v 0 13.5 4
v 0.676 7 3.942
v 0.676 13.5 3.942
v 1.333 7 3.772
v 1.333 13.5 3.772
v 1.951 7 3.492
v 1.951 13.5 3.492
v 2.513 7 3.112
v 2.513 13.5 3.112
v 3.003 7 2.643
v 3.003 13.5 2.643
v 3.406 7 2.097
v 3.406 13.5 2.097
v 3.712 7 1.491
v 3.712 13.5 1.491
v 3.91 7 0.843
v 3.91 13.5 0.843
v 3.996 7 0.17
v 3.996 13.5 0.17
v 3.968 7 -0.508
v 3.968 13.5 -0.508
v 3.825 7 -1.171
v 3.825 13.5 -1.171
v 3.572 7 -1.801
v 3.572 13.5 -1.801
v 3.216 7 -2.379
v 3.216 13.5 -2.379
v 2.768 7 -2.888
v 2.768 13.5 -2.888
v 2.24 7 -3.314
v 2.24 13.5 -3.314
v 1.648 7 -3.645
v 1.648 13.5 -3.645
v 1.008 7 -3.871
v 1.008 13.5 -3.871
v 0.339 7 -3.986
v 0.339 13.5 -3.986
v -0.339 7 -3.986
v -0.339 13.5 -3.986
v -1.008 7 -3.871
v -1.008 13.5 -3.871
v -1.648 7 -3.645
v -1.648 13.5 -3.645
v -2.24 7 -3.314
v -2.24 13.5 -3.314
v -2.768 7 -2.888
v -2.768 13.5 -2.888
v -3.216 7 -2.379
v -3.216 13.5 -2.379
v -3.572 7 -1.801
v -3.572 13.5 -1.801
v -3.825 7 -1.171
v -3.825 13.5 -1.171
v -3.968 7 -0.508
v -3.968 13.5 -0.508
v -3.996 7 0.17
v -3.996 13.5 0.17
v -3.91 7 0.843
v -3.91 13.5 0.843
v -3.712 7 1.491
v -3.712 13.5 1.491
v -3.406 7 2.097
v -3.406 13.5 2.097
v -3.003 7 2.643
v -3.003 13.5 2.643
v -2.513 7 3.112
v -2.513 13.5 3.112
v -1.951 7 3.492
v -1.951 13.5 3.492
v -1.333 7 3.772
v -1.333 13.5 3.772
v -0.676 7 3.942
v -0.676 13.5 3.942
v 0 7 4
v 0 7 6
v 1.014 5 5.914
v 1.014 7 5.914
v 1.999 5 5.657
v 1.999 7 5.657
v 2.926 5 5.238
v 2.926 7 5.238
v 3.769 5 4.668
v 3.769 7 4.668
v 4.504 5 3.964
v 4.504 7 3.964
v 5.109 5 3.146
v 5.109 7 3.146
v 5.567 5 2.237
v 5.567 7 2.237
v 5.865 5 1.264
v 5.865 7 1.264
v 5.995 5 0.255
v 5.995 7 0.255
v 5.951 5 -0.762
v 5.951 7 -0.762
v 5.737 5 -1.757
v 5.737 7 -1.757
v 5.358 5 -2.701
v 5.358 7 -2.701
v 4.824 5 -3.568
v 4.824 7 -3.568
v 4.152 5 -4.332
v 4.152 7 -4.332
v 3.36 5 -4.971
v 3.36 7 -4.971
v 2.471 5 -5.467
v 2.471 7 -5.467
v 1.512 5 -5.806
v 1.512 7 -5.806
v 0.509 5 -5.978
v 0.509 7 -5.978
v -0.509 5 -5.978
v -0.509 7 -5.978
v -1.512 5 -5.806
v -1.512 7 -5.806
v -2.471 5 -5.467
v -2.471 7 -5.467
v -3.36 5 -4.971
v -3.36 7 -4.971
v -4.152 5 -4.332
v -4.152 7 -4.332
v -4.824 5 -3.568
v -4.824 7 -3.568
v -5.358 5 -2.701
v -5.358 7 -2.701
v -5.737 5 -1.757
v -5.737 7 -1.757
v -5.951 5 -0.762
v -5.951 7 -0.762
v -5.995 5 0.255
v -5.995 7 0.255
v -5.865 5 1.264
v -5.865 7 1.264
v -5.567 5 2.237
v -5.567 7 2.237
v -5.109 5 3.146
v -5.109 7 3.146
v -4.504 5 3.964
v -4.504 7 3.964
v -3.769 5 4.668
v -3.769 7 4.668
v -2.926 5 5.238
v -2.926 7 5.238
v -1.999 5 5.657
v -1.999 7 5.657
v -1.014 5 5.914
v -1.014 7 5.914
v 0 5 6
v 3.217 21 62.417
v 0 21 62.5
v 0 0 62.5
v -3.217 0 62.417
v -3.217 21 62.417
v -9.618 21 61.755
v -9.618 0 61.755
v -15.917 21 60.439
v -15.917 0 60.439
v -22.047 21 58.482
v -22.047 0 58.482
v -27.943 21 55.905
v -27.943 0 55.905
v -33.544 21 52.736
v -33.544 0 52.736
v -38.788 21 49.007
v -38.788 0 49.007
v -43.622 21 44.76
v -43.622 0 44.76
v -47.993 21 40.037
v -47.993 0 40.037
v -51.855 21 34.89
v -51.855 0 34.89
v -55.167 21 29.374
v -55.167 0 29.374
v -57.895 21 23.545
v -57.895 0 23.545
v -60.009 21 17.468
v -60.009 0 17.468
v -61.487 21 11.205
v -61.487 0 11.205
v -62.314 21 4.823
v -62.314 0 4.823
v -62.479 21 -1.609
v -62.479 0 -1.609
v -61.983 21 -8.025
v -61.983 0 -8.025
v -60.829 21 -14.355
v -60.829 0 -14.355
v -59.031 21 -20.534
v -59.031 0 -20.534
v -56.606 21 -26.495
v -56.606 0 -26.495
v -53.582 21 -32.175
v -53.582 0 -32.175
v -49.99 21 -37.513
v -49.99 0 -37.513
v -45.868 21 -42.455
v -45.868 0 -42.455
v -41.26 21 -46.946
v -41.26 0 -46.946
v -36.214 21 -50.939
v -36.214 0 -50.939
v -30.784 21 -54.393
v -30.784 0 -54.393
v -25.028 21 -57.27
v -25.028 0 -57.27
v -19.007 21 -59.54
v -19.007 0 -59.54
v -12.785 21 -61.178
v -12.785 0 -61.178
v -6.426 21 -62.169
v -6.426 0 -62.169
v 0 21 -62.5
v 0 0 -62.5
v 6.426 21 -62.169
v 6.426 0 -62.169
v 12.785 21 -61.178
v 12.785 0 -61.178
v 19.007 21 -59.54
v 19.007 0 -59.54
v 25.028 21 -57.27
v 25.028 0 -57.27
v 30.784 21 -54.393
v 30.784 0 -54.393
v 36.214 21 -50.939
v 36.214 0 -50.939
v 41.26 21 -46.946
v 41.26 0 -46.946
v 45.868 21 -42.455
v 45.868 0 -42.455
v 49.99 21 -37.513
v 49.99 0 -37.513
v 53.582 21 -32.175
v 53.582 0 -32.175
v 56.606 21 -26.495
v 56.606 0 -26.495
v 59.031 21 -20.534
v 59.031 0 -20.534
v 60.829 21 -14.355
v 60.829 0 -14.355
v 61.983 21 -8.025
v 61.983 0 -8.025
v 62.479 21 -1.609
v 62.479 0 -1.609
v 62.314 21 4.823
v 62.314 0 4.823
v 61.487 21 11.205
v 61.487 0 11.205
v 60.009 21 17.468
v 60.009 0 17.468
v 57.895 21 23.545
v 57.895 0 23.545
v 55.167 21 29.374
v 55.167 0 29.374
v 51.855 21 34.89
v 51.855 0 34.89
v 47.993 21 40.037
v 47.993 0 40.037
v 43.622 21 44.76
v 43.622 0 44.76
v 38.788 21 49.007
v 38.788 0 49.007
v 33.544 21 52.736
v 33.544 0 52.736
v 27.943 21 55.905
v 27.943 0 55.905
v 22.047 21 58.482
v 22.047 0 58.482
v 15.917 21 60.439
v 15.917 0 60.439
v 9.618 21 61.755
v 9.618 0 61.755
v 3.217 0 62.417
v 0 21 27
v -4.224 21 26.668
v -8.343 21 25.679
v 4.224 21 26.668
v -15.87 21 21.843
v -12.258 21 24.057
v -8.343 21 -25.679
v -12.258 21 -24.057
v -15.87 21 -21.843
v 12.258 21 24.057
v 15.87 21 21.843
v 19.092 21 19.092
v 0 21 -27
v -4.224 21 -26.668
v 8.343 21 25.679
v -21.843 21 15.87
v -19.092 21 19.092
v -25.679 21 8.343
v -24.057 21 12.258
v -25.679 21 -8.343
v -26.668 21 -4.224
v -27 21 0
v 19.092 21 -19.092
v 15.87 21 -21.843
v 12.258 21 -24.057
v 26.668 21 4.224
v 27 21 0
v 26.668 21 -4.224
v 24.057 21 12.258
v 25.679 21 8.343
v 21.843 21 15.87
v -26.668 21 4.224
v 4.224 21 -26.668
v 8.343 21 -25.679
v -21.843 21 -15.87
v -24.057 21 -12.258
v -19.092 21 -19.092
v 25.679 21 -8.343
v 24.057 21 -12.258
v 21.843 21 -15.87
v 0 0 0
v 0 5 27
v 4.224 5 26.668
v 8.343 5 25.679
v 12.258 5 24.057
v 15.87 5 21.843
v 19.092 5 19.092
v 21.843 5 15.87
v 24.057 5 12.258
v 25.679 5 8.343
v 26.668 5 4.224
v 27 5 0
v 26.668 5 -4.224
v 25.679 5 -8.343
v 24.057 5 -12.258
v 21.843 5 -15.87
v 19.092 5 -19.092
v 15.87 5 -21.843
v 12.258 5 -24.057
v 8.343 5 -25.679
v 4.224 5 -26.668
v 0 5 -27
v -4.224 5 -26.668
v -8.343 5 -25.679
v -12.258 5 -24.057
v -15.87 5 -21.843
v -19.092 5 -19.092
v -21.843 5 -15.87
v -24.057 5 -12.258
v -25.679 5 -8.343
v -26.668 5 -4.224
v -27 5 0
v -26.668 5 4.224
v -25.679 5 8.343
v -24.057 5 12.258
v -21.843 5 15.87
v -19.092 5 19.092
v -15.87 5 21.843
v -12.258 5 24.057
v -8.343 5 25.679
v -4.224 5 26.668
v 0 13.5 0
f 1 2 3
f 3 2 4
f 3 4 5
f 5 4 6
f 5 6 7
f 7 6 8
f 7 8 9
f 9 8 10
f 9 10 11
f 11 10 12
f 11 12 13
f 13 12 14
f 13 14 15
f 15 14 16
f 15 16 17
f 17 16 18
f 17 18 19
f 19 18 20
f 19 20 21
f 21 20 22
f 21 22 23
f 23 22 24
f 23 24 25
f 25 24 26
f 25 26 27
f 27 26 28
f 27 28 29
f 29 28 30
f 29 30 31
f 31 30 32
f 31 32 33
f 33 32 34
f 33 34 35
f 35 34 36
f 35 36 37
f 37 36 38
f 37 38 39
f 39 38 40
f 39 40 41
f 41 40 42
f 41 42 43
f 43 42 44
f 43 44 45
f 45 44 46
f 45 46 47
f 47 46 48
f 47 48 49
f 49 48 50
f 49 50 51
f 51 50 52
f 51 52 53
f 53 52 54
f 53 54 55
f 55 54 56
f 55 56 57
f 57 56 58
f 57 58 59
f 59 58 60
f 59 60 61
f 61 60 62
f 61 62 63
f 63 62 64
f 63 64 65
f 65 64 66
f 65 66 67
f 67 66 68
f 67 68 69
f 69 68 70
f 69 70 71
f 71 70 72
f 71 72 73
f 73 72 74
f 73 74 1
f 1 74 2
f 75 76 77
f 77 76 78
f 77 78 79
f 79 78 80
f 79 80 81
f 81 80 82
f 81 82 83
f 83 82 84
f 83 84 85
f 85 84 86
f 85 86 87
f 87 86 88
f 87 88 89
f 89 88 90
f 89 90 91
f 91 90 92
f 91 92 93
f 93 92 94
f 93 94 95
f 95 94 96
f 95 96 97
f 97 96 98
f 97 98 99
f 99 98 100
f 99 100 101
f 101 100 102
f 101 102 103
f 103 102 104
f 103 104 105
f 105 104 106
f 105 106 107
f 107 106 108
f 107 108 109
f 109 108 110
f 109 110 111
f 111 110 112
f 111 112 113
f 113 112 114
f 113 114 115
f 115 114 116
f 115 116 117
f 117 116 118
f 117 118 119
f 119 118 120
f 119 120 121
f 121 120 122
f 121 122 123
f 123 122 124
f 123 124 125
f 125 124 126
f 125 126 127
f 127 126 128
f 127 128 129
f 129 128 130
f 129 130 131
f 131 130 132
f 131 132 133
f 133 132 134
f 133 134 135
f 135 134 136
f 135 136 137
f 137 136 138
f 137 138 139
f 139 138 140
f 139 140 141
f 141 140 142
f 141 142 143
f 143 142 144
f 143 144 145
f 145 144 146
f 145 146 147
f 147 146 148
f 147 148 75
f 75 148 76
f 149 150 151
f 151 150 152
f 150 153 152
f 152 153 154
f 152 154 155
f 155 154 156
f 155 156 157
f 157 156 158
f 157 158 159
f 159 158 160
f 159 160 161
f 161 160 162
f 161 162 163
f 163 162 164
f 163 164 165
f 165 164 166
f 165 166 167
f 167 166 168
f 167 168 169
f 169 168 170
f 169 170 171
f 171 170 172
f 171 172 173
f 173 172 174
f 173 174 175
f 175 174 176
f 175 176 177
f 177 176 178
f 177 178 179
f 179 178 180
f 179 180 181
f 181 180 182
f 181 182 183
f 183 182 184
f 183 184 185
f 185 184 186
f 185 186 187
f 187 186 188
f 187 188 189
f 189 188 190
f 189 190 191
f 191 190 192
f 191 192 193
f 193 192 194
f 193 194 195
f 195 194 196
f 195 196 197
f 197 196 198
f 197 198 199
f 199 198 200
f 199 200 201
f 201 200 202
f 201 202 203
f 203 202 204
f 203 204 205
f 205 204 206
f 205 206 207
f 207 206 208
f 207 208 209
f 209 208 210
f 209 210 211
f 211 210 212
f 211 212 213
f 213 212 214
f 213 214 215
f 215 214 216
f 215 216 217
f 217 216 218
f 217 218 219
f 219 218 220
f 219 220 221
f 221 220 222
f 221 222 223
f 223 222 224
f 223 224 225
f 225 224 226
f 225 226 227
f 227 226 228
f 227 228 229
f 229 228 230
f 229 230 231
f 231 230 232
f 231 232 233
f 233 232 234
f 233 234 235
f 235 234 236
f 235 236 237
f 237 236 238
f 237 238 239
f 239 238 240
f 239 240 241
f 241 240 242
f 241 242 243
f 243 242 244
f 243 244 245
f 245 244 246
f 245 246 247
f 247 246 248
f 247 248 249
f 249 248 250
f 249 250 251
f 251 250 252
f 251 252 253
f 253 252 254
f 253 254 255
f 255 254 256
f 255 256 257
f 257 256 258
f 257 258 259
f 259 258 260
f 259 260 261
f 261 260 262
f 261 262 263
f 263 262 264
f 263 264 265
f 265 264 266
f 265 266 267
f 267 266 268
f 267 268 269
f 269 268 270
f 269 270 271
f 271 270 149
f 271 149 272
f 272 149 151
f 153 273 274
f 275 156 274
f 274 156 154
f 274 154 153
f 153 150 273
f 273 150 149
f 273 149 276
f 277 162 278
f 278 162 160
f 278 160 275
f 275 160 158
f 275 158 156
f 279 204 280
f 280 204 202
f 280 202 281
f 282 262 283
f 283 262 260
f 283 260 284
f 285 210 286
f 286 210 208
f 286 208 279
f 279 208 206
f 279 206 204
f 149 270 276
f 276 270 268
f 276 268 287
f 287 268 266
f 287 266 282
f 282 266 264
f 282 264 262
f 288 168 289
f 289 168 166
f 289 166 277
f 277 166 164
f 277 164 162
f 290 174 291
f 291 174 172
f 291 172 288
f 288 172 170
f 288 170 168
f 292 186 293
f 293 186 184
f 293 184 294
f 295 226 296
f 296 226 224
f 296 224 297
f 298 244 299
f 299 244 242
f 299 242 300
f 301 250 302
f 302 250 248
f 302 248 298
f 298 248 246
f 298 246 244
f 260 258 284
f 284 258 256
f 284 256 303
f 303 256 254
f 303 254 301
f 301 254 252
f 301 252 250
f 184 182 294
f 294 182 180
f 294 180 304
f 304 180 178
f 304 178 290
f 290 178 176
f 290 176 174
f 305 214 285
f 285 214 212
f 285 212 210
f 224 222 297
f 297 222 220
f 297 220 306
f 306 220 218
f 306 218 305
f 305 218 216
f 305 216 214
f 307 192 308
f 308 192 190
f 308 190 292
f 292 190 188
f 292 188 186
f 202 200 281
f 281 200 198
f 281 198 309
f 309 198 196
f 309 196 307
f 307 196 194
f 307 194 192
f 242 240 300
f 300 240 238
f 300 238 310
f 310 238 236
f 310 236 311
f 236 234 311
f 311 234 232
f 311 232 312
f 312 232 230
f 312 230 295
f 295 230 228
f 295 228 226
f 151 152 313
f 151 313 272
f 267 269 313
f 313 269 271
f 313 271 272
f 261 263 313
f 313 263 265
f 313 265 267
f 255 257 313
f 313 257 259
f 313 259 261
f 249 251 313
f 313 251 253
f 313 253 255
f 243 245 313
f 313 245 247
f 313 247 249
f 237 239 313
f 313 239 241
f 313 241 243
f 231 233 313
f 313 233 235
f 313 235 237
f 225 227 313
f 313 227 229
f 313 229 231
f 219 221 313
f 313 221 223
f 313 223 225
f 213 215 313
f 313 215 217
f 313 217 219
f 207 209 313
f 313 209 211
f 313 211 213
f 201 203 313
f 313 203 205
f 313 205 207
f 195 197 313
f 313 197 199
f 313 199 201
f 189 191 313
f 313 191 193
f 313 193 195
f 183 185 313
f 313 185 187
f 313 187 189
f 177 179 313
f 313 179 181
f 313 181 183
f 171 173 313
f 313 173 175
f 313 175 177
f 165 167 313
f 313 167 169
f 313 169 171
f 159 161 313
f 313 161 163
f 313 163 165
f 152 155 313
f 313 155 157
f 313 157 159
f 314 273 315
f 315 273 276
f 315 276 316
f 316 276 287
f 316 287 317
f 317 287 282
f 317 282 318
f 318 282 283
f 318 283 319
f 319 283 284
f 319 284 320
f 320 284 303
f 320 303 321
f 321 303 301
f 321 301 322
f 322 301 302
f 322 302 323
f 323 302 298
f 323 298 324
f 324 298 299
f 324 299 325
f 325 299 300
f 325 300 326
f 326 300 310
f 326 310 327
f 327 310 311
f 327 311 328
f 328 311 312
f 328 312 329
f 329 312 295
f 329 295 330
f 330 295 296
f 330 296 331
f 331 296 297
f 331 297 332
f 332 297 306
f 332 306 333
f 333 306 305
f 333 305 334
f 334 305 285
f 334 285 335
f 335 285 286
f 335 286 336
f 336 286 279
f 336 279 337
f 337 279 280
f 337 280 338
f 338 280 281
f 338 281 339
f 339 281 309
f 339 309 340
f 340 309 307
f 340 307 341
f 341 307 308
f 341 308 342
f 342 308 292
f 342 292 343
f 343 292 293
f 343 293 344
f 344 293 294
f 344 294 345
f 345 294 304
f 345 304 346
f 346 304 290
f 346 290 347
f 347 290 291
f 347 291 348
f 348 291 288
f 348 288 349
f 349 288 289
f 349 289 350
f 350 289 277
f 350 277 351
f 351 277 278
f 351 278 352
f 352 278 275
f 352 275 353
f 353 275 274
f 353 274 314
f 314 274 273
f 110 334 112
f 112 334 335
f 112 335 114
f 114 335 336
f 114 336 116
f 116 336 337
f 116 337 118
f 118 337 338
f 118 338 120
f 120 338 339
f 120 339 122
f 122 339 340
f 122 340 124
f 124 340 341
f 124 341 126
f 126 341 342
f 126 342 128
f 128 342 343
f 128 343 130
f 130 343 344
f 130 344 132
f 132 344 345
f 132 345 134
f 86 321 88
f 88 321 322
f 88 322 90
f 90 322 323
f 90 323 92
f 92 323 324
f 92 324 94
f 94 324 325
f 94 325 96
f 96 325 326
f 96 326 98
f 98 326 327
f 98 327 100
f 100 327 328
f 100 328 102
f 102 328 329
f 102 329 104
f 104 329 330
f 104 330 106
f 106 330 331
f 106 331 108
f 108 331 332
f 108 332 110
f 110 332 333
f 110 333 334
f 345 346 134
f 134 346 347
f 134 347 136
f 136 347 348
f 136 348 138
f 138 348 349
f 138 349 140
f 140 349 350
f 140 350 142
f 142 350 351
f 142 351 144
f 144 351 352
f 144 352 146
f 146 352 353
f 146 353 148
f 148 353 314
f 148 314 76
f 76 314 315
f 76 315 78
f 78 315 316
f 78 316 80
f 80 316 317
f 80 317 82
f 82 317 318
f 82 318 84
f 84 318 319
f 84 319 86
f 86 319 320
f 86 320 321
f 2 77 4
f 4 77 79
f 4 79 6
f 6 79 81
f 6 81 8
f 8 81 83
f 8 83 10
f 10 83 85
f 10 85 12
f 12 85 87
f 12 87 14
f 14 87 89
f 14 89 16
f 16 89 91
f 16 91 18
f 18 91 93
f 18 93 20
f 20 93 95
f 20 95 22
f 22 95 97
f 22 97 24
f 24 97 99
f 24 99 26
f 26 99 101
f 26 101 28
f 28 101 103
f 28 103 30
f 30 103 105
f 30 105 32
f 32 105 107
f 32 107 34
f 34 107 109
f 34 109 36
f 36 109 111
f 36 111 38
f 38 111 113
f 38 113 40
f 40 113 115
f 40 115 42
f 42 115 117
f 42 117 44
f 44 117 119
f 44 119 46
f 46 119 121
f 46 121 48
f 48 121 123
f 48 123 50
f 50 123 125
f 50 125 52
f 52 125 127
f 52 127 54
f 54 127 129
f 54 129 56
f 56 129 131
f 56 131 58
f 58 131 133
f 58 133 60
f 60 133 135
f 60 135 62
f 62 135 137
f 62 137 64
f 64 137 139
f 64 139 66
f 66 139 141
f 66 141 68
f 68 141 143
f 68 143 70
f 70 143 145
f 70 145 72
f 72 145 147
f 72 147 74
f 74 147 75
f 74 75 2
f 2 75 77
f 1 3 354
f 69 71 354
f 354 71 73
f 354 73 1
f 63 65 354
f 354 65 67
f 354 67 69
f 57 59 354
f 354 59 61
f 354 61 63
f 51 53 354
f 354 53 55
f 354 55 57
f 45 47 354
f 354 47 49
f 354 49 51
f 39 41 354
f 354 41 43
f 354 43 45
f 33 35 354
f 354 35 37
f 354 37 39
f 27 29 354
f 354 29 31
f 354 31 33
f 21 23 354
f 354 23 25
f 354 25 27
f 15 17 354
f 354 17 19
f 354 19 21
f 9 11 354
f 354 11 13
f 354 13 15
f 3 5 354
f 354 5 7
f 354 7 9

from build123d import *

# Parameters (mm, degrees)
SKETCH1_R           = 62.5
BOSS_EXTRUDE1_DEPTH = 21
SKETCH2_R           = 27
SKETCH2_R_2         = 6
CUT_EXTRUDE1_DEPTH  = 16
SKETCH3_R           = 6
SKETCH3_R_2         = 4
CUT_EXTRUDE2_DEPTH  = 14
SKETCH4_R           = 4
CUT_EXTRUDE3_DEPTH  = 7.5


with BuildPart() as part:
    # Sketch1 → Boss-Extrude1 (new body)
    with BuildSketch(Plane(origin=(0, 0, 0), x_dir=(1, 0, 0), z_dir=(0, 1, 0))):
        with Locations(Location((0, 0, 0), (0, 0, 90))):
            Circle(SKETCH1_R)
    extrude(amount=BOSS_EXTRUDE1_DEPTH)

    # Sketch2 → Cut-Extrude1 (cut)
    with BuildSketch(Plane(origin=(0, 21, 0), x_dir=(1, 0, 0), z_dir=(0, 1, 0))):
        with Locations(Location((0, 0, 0), (0, 0, 270))):
            Circle(SKETCH2_R)
        with Locations(Location((0, 0, 0), (0, 0, 270))):
            Circle(SKETCH2_R_2, mode=Mode.SUBTRACT)
    extrude(amount=-CUT_EXTRUDE1_DEPTH, mode=Mode.SUBTRACT)

    # Sketch3 → Cut-Extrude2 (cut)
    with BuildSketch(Plane(origin=(0, 21, 0), x_dir=(1, 0, 0), z_dir=(0, 1, 0))):
        with Locations(Location((0, 0, 0), (0, 0, 270))):
            Circle(SKETCH3_R)
        with Locations(Location((0, 0, 0), (0, 0, 270))):
            Circle(SKETCH3_R_2, mode=Mode.SUBTRACT)
    extrude(amount=-CUT_EXTRUDE2_DEPTH, mode=Mode.SUBTRACT)

    # Sketch4 → Cut-Extrude3 (cut)
    with BuildSketch(Plane(origin=(0, 21, 0), x_dir=(1, 0, 0), z_dir=(0, 1, 0))):
        with Locations(Location((0, 0, 0), (0, 0, 270))):
            Circle(SKETCH4_R)
    extrude(amount=-CUT_EXTRUDE3_DEPTH, mode=Mode.SUBTRACT)


solid = part.part
